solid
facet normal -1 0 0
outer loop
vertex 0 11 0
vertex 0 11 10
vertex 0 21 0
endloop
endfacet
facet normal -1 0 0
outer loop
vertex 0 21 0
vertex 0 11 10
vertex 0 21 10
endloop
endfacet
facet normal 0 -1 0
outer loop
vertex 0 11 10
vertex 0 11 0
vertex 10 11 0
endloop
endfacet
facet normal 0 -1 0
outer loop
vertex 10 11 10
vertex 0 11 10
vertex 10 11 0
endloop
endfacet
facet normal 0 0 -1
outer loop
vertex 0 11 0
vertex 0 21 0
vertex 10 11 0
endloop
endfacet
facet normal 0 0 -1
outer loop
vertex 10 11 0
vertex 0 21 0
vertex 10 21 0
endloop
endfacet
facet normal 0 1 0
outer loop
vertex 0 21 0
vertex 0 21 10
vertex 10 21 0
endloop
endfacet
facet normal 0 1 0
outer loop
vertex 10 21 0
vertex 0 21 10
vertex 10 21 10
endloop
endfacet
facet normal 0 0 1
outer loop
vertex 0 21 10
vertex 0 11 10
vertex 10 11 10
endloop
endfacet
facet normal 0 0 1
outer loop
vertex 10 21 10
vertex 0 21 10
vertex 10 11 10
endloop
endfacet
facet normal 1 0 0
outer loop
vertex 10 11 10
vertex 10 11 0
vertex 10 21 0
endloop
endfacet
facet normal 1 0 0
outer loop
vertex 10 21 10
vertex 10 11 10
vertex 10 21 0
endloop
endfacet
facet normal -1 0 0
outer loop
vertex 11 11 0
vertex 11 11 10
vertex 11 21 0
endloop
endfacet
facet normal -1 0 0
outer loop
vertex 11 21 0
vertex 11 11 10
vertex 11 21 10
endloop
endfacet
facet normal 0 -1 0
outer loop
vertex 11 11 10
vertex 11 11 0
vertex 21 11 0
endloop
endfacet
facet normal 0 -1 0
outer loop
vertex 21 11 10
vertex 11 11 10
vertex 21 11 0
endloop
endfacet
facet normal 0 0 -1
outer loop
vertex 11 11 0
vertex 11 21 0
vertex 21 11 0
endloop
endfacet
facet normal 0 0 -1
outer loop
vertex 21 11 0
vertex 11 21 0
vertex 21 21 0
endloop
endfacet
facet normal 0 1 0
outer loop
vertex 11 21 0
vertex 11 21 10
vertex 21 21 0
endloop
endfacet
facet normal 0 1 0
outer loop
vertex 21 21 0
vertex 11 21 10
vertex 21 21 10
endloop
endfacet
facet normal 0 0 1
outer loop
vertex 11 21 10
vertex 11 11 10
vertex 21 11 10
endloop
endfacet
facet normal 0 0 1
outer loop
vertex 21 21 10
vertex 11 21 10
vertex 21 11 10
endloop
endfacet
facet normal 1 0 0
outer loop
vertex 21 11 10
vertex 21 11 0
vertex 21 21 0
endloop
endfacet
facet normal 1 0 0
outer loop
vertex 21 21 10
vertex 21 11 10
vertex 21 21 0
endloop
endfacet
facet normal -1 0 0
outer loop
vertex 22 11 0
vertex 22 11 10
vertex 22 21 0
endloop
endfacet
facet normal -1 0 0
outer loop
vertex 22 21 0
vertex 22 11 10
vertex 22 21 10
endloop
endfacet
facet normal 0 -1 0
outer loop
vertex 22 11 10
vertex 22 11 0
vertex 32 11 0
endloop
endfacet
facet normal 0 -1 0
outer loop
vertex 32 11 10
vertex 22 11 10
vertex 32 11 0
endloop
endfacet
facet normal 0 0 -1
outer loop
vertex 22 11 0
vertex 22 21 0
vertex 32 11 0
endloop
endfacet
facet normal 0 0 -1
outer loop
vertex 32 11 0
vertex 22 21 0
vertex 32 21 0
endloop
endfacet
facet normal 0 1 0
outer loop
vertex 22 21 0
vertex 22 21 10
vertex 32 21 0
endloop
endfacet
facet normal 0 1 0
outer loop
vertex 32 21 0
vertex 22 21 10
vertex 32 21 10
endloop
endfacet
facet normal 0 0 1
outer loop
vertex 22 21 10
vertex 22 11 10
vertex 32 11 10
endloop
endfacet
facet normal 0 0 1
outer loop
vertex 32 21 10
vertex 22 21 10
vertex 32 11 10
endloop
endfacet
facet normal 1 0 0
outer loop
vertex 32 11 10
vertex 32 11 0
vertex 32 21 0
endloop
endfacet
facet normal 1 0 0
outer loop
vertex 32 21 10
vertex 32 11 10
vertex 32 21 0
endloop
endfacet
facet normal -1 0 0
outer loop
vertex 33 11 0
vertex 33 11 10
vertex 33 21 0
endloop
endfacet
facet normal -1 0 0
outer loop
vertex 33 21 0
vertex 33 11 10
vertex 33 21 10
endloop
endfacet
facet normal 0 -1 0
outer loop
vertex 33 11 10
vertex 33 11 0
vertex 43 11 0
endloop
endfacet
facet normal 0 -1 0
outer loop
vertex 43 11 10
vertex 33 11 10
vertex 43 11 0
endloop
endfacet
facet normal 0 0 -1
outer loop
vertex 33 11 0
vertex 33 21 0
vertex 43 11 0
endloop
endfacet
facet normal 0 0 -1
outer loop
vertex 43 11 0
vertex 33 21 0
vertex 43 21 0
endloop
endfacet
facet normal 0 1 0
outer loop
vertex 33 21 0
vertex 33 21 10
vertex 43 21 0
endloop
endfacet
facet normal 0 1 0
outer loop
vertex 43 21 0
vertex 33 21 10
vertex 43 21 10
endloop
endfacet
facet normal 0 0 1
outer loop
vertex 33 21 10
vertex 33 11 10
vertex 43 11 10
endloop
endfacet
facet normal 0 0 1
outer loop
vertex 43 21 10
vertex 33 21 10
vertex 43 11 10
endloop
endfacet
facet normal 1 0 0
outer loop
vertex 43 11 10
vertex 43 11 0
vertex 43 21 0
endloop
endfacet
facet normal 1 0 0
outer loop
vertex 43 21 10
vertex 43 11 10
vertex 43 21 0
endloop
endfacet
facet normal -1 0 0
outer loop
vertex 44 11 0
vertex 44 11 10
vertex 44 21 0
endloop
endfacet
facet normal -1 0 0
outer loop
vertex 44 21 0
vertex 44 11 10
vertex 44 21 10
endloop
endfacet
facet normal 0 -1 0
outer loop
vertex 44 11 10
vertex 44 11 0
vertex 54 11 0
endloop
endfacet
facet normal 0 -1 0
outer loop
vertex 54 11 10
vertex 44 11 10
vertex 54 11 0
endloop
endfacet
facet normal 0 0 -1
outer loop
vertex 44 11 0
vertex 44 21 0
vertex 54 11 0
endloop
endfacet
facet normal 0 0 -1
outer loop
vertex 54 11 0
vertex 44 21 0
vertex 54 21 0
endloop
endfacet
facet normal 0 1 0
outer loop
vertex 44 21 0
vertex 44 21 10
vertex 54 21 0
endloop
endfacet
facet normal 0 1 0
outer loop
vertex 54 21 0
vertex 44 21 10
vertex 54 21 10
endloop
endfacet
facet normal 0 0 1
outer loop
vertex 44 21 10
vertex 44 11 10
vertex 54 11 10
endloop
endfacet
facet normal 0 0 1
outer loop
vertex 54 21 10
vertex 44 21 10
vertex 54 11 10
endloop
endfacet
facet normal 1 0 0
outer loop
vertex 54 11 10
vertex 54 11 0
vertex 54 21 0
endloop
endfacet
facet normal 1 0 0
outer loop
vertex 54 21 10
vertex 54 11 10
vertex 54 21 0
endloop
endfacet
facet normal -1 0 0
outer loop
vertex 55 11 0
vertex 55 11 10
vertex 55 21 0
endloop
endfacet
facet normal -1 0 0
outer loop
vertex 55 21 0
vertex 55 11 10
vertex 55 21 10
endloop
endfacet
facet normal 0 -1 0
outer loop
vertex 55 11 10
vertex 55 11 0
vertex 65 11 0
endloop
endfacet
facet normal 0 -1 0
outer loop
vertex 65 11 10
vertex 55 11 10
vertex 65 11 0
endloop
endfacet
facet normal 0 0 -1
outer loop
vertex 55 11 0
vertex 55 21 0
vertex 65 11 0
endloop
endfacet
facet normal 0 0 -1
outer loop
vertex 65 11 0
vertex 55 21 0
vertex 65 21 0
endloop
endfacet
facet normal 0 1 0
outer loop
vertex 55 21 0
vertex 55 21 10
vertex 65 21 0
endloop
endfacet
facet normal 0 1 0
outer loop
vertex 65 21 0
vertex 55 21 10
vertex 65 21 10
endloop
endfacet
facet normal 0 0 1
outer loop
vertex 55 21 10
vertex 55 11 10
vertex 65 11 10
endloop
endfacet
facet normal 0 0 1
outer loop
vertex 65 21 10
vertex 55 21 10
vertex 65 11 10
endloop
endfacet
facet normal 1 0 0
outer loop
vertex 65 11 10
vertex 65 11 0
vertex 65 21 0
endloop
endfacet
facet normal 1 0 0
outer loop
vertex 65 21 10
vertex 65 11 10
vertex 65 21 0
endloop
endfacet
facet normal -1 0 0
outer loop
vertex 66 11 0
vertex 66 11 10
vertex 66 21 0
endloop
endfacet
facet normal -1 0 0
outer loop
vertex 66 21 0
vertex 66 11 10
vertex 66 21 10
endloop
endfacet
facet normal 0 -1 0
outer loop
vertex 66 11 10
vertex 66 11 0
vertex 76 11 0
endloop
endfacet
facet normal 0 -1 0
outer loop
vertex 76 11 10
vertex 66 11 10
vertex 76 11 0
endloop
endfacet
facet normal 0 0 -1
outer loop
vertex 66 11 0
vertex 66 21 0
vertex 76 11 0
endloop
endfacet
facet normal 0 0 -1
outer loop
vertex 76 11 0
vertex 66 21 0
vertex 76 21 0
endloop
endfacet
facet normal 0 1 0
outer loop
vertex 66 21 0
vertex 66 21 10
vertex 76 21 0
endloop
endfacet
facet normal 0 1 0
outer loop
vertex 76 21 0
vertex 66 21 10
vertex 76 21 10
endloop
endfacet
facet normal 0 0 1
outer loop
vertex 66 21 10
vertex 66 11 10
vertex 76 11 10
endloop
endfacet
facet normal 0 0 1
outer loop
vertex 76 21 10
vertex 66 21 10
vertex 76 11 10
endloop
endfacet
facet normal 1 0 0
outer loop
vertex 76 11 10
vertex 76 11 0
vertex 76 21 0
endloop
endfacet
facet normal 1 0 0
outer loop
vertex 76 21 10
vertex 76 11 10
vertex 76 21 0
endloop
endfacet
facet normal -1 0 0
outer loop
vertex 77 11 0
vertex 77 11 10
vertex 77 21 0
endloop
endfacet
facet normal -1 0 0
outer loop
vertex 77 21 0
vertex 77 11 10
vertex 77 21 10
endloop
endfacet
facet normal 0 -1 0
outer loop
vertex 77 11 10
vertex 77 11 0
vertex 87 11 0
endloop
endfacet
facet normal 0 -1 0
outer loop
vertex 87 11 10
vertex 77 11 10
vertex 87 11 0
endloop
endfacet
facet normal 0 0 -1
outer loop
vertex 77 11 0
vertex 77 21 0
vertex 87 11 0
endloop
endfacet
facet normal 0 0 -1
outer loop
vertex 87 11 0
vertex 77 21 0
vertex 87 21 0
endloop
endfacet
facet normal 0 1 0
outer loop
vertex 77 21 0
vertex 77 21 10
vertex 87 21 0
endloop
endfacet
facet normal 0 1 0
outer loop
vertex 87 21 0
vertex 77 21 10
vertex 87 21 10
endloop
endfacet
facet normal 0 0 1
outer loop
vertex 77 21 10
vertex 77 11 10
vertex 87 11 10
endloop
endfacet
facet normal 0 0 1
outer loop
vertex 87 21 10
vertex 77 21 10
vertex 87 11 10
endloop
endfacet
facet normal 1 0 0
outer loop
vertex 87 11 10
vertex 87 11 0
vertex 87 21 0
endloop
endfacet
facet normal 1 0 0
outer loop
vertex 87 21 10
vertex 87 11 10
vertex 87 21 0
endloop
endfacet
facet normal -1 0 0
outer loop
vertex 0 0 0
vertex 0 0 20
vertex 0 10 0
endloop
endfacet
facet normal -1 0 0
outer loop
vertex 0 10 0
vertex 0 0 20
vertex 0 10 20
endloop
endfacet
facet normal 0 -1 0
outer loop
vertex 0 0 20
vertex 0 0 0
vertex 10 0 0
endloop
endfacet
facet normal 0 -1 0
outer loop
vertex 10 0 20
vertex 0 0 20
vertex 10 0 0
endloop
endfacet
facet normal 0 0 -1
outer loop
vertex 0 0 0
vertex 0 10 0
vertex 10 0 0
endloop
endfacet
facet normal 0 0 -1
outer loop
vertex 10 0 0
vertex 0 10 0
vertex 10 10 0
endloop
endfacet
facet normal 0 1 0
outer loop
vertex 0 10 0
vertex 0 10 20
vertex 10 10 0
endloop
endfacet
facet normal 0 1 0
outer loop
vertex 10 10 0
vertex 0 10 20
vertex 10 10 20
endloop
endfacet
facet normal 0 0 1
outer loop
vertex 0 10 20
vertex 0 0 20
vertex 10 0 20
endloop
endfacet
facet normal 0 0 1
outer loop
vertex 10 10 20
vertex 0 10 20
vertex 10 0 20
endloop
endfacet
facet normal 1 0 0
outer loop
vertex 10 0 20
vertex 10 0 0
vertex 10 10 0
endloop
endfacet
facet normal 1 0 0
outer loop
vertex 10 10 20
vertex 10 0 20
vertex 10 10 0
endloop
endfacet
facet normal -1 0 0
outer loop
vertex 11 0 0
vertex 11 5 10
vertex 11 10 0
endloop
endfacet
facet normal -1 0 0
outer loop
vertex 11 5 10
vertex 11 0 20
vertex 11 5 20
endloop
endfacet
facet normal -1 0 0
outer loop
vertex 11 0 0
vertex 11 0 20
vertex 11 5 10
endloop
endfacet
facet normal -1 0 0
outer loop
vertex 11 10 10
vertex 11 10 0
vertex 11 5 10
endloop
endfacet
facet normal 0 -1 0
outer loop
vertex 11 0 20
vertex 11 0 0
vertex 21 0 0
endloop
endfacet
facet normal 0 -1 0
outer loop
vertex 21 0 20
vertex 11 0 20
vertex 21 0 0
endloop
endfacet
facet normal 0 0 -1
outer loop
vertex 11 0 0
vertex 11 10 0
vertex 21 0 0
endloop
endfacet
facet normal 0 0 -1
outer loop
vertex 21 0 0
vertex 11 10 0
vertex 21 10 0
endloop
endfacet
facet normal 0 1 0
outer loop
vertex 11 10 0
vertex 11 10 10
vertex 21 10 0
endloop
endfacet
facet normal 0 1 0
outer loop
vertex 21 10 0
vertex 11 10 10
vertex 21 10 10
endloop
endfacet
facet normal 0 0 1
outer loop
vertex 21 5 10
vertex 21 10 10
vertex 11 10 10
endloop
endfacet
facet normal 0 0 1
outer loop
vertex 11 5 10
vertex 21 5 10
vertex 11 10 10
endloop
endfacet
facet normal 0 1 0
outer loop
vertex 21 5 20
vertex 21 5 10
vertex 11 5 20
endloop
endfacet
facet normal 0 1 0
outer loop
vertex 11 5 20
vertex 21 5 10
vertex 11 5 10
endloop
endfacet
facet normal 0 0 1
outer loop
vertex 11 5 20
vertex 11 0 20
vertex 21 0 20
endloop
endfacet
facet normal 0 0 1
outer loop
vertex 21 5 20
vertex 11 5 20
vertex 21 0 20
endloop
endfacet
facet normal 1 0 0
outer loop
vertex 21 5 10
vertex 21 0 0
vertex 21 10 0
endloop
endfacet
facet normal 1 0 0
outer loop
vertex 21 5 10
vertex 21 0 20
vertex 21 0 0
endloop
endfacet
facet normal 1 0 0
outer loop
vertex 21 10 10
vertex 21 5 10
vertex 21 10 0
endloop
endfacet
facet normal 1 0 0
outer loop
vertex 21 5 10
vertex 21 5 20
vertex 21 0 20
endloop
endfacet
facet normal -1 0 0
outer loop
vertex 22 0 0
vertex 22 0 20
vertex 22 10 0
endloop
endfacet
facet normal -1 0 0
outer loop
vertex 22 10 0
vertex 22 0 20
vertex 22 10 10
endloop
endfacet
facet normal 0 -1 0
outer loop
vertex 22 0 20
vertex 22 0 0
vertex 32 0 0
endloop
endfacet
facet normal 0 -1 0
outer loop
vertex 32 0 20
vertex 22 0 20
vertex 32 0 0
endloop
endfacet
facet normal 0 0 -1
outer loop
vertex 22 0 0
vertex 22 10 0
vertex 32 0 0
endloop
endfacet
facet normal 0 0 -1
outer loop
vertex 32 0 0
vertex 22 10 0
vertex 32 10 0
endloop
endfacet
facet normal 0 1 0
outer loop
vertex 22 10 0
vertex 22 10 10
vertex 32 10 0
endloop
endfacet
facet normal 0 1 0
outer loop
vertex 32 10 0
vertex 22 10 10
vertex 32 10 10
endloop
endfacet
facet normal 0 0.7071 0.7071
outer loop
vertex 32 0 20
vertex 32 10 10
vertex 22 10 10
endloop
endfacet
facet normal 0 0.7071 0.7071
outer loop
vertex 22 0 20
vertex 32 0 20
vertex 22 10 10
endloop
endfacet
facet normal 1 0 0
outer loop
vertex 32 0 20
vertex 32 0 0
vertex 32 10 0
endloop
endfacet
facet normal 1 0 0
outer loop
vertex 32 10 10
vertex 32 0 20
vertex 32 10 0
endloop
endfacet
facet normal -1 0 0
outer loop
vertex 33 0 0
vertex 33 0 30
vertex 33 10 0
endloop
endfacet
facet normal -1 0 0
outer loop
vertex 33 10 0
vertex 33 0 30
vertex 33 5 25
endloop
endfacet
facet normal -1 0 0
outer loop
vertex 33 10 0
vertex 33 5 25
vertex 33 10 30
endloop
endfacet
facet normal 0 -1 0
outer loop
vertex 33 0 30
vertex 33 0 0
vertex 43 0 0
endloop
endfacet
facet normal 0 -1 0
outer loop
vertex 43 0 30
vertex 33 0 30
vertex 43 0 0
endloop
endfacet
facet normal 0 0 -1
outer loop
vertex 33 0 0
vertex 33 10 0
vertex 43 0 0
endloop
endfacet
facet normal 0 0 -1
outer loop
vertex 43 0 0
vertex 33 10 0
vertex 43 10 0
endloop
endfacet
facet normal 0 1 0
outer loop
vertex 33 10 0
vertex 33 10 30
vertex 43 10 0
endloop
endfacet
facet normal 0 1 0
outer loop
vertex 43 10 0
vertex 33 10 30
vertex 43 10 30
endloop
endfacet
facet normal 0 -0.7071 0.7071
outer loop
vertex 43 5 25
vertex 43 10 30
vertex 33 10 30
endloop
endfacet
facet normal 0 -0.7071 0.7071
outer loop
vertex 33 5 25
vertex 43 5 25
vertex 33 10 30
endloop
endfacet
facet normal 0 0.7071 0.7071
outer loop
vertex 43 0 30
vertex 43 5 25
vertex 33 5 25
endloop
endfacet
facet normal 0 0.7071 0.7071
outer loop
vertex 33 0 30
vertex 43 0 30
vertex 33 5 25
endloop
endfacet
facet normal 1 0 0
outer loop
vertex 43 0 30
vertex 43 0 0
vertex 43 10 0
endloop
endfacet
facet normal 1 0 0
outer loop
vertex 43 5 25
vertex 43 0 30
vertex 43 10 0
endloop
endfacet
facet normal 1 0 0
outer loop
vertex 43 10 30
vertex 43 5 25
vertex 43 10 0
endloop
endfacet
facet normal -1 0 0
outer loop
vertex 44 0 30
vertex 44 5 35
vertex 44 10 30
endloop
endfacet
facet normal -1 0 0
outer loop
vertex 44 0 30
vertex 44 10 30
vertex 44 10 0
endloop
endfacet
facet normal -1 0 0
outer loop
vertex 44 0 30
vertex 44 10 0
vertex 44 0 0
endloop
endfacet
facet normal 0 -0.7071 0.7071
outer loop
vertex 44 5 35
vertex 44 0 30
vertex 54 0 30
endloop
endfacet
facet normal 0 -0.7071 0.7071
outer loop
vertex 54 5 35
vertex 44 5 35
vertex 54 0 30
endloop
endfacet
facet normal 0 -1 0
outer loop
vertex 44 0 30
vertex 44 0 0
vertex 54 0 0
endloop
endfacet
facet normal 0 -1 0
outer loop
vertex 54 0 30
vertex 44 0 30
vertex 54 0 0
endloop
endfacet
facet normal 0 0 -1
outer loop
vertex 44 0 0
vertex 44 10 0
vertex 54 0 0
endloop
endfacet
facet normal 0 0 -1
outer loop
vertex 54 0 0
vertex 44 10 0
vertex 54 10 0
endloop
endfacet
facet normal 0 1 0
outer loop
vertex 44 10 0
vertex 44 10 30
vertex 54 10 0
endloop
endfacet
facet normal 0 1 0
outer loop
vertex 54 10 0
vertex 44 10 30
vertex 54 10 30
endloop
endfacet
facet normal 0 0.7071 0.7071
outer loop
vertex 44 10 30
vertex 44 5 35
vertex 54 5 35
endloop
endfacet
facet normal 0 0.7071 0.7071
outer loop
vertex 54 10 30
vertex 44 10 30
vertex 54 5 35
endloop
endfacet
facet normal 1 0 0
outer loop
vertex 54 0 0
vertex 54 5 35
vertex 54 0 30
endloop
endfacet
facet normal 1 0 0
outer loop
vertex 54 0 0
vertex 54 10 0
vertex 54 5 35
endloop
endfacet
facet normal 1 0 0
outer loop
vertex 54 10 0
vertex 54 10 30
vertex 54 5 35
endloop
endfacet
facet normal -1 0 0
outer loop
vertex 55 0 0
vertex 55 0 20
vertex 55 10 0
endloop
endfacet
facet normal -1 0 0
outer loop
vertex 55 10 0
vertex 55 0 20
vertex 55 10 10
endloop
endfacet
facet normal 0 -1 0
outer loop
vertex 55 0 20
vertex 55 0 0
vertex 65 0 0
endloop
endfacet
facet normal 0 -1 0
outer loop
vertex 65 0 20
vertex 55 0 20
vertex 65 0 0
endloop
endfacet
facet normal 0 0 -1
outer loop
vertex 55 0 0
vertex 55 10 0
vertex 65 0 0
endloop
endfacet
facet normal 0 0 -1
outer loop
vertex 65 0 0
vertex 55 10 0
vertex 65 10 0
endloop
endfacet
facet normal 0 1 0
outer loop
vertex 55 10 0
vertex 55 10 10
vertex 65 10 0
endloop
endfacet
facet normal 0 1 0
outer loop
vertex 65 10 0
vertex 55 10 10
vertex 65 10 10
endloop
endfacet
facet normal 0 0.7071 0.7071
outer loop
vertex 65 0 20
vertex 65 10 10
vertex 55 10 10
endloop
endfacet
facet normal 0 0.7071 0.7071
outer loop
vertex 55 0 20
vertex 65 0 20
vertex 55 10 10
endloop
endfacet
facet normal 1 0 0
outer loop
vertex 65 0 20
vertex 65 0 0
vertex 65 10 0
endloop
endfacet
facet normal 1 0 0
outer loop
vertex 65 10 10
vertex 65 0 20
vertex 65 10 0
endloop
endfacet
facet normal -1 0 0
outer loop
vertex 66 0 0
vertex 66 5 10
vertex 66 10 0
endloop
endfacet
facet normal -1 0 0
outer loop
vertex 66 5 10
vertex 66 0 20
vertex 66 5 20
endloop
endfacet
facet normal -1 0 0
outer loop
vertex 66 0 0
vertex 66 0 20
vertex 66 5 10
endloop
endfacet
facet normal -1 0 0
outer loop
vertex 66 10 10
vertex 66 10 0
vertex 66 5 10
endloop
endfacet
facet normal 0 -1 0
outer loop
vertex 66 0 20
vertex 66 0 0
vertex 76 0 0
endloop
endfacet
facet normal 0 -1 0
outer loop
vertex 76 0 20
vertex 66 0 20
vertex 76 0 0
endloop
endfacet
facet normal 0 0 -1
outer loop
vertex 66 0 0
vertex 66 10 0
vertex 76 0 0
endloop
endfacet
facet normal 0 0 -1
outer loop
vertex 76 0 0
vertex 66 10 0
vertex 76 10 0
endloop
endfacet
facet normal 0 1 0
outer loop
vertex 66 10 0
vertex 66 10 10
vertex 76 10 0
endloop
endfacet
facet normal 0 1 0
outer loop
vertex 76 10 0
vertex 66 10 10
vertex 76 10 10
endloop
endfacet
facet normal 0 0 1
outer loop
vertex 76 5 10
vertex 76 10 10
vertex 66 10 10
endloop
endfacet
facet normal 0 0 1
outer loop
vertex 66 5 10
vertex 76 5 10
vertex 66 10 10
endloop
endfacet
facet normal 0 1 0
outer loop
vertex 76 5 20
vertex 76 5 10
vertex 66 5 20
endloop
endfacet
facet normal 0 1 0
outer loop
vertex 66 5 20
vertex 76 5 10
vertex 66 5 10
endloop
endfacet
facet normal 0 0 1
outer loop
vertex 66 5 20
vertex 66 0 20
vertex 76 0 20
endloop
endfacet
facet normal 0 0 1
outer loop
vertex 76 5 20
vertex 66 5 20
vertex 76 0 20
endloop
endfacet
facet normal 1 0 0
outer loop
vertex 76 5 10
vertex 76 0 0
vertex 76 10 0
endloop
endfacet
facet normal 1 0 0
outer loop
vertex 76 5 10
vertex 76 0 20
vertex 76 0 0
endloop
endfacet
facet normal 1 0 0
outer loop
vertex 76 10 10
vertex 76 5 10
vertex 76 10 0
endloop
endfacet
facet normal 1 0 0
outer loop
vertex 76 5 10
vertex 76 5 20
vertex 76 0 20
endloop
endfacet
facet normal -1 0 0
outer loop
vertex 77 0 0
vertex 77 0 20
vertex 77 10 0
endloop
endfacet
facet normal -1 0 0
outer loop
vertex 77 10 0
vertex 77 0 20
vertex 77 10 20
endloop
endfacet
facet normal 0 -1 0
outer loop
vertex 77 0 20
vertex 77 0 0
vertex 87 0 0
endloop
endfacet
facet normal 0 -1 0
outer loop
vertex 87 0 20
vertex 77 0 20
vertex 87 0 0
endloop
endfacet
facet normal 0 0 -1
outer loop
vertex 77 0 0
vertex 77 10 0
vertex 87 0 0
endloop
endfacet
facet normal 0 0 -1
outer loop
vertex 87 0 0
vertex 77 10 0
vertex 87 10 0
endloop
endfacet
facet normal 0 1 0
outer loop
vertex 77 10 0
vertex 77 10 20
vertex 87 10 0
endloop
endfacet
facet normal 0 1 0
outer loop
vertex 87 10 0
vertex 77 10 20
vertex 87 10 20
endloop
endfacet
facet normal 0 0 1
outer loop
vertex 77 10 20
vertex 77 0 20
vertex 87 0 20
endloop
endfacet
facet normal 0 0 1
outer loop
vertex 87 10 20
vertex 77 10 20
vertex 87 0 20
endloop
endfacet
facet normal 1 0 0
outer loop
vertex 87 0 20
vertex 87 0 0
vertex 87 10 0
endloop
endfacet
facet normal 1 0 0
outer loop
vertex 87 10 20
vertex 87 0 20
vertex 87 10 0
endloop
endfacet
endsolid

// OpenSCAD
/*
 * Lanier Graham Chess Set
 * Original Degign Copyright (c) 1967 F. Lanier Graham
 * Source Code Copyright (c) 2013 Anar Software LLC. < http://anars.com >
 *
 * This program is free software: you can redistribute it and/or modify it under
 * the terms of the GNU General Public License as published by the Free Software
 * Foundation, either version 3 of the License, or (at your option) any later
 * version.
 *
 * This program is distributed in the hope that it will be useful, but WITHOUT
 * ANY WARRANTY; without even the implied warranty of MERCHANTABILITY or FITNESS
 * FOR A PARTICULAR PURPOSE. See the GNU General Public License for more details.
 *
 * You should have received a copy of the GNU General Public License along with
 * this program. If not, see < http://www.gnu.org/licenses/ >
 *
 */

thickness = 10;

padding = 1;

module pawn()
{
	cube(thickness);
}

module rock()
{
	cube([thickness, thickness, thickness * 2]);
}

module knight()
{
	difference()
	{
		cube([thickness, thickness, thickness * 2]);
		translate([-1, thickness / 2, thickness])
			cube([thickness + 2, thickness / 2 + 1, thickness + 1]);
	}
}

module bishop()
{
	difference()
	{
		cube([thickness, thickness, thickness * 2]);
		translate([-1, thickness, thickness])
			rotate(a=[45,0,0])
				cube([thickness + 2, thickness, sqrt(pow(thickness, 2) + pow(thickness, 2))]);
	}
}

module queen()
{
	difference()
	{
		cube([thickness, thickness, thickness * 3]);
			translate([-1, thickness / 2, thickness * 3 - sqrt(pow(thickness, 2) / 4)])
				rotate(a=[45,0,0])
			cube([thickness + 2, sqrt(pow(thickness, 2) / 2), sqrt(pow(thickness, 2) / 2)]);
	}
}

module king()
{
	union()
	{
		cube([thickness, thickness, thickness * 3]);
			translate([0, thickness / 2, thickness * 3 - sqrt(pow(thickness, 2) / 4)])
				rotate(a=[45,0,0])
			cube([thickness, sqrt(pow(thickness, 2) / 2), sqrt(pow(thickness, 2) / 2)]);
	}
}

module set()
{
	for ( i = [0 : 7] )
		translate([thickness * i + (i * padding), thickness + padding, 0])
			pawn();

	translate([thickness * 0 + (0 * padding), 0, 0])
		rock();

	translate([thickness * 1 + (1 * padding), 0, 0])
		knight();

	translate([thickness * 2 + (2 * padding), 0, 0])
		bishop();

	translate([thickness * 3 + (3 * padding), 0, 0])
		queen();

	translate([thickness * 4 + (4 * padding), 0, 0])
		king();

	translate([thickness * 5 + (5 * padding), 0, 0])
		bishop();

	translate([thickness * 6 + (6 * padding), 0, 0])
		knight();

	translate([thickness * 7 + (7 * padding), 0, 0])
		rock();

}

set();

// pawn();
// rock();
// knight();
// bishop();
// queen();
// king();
